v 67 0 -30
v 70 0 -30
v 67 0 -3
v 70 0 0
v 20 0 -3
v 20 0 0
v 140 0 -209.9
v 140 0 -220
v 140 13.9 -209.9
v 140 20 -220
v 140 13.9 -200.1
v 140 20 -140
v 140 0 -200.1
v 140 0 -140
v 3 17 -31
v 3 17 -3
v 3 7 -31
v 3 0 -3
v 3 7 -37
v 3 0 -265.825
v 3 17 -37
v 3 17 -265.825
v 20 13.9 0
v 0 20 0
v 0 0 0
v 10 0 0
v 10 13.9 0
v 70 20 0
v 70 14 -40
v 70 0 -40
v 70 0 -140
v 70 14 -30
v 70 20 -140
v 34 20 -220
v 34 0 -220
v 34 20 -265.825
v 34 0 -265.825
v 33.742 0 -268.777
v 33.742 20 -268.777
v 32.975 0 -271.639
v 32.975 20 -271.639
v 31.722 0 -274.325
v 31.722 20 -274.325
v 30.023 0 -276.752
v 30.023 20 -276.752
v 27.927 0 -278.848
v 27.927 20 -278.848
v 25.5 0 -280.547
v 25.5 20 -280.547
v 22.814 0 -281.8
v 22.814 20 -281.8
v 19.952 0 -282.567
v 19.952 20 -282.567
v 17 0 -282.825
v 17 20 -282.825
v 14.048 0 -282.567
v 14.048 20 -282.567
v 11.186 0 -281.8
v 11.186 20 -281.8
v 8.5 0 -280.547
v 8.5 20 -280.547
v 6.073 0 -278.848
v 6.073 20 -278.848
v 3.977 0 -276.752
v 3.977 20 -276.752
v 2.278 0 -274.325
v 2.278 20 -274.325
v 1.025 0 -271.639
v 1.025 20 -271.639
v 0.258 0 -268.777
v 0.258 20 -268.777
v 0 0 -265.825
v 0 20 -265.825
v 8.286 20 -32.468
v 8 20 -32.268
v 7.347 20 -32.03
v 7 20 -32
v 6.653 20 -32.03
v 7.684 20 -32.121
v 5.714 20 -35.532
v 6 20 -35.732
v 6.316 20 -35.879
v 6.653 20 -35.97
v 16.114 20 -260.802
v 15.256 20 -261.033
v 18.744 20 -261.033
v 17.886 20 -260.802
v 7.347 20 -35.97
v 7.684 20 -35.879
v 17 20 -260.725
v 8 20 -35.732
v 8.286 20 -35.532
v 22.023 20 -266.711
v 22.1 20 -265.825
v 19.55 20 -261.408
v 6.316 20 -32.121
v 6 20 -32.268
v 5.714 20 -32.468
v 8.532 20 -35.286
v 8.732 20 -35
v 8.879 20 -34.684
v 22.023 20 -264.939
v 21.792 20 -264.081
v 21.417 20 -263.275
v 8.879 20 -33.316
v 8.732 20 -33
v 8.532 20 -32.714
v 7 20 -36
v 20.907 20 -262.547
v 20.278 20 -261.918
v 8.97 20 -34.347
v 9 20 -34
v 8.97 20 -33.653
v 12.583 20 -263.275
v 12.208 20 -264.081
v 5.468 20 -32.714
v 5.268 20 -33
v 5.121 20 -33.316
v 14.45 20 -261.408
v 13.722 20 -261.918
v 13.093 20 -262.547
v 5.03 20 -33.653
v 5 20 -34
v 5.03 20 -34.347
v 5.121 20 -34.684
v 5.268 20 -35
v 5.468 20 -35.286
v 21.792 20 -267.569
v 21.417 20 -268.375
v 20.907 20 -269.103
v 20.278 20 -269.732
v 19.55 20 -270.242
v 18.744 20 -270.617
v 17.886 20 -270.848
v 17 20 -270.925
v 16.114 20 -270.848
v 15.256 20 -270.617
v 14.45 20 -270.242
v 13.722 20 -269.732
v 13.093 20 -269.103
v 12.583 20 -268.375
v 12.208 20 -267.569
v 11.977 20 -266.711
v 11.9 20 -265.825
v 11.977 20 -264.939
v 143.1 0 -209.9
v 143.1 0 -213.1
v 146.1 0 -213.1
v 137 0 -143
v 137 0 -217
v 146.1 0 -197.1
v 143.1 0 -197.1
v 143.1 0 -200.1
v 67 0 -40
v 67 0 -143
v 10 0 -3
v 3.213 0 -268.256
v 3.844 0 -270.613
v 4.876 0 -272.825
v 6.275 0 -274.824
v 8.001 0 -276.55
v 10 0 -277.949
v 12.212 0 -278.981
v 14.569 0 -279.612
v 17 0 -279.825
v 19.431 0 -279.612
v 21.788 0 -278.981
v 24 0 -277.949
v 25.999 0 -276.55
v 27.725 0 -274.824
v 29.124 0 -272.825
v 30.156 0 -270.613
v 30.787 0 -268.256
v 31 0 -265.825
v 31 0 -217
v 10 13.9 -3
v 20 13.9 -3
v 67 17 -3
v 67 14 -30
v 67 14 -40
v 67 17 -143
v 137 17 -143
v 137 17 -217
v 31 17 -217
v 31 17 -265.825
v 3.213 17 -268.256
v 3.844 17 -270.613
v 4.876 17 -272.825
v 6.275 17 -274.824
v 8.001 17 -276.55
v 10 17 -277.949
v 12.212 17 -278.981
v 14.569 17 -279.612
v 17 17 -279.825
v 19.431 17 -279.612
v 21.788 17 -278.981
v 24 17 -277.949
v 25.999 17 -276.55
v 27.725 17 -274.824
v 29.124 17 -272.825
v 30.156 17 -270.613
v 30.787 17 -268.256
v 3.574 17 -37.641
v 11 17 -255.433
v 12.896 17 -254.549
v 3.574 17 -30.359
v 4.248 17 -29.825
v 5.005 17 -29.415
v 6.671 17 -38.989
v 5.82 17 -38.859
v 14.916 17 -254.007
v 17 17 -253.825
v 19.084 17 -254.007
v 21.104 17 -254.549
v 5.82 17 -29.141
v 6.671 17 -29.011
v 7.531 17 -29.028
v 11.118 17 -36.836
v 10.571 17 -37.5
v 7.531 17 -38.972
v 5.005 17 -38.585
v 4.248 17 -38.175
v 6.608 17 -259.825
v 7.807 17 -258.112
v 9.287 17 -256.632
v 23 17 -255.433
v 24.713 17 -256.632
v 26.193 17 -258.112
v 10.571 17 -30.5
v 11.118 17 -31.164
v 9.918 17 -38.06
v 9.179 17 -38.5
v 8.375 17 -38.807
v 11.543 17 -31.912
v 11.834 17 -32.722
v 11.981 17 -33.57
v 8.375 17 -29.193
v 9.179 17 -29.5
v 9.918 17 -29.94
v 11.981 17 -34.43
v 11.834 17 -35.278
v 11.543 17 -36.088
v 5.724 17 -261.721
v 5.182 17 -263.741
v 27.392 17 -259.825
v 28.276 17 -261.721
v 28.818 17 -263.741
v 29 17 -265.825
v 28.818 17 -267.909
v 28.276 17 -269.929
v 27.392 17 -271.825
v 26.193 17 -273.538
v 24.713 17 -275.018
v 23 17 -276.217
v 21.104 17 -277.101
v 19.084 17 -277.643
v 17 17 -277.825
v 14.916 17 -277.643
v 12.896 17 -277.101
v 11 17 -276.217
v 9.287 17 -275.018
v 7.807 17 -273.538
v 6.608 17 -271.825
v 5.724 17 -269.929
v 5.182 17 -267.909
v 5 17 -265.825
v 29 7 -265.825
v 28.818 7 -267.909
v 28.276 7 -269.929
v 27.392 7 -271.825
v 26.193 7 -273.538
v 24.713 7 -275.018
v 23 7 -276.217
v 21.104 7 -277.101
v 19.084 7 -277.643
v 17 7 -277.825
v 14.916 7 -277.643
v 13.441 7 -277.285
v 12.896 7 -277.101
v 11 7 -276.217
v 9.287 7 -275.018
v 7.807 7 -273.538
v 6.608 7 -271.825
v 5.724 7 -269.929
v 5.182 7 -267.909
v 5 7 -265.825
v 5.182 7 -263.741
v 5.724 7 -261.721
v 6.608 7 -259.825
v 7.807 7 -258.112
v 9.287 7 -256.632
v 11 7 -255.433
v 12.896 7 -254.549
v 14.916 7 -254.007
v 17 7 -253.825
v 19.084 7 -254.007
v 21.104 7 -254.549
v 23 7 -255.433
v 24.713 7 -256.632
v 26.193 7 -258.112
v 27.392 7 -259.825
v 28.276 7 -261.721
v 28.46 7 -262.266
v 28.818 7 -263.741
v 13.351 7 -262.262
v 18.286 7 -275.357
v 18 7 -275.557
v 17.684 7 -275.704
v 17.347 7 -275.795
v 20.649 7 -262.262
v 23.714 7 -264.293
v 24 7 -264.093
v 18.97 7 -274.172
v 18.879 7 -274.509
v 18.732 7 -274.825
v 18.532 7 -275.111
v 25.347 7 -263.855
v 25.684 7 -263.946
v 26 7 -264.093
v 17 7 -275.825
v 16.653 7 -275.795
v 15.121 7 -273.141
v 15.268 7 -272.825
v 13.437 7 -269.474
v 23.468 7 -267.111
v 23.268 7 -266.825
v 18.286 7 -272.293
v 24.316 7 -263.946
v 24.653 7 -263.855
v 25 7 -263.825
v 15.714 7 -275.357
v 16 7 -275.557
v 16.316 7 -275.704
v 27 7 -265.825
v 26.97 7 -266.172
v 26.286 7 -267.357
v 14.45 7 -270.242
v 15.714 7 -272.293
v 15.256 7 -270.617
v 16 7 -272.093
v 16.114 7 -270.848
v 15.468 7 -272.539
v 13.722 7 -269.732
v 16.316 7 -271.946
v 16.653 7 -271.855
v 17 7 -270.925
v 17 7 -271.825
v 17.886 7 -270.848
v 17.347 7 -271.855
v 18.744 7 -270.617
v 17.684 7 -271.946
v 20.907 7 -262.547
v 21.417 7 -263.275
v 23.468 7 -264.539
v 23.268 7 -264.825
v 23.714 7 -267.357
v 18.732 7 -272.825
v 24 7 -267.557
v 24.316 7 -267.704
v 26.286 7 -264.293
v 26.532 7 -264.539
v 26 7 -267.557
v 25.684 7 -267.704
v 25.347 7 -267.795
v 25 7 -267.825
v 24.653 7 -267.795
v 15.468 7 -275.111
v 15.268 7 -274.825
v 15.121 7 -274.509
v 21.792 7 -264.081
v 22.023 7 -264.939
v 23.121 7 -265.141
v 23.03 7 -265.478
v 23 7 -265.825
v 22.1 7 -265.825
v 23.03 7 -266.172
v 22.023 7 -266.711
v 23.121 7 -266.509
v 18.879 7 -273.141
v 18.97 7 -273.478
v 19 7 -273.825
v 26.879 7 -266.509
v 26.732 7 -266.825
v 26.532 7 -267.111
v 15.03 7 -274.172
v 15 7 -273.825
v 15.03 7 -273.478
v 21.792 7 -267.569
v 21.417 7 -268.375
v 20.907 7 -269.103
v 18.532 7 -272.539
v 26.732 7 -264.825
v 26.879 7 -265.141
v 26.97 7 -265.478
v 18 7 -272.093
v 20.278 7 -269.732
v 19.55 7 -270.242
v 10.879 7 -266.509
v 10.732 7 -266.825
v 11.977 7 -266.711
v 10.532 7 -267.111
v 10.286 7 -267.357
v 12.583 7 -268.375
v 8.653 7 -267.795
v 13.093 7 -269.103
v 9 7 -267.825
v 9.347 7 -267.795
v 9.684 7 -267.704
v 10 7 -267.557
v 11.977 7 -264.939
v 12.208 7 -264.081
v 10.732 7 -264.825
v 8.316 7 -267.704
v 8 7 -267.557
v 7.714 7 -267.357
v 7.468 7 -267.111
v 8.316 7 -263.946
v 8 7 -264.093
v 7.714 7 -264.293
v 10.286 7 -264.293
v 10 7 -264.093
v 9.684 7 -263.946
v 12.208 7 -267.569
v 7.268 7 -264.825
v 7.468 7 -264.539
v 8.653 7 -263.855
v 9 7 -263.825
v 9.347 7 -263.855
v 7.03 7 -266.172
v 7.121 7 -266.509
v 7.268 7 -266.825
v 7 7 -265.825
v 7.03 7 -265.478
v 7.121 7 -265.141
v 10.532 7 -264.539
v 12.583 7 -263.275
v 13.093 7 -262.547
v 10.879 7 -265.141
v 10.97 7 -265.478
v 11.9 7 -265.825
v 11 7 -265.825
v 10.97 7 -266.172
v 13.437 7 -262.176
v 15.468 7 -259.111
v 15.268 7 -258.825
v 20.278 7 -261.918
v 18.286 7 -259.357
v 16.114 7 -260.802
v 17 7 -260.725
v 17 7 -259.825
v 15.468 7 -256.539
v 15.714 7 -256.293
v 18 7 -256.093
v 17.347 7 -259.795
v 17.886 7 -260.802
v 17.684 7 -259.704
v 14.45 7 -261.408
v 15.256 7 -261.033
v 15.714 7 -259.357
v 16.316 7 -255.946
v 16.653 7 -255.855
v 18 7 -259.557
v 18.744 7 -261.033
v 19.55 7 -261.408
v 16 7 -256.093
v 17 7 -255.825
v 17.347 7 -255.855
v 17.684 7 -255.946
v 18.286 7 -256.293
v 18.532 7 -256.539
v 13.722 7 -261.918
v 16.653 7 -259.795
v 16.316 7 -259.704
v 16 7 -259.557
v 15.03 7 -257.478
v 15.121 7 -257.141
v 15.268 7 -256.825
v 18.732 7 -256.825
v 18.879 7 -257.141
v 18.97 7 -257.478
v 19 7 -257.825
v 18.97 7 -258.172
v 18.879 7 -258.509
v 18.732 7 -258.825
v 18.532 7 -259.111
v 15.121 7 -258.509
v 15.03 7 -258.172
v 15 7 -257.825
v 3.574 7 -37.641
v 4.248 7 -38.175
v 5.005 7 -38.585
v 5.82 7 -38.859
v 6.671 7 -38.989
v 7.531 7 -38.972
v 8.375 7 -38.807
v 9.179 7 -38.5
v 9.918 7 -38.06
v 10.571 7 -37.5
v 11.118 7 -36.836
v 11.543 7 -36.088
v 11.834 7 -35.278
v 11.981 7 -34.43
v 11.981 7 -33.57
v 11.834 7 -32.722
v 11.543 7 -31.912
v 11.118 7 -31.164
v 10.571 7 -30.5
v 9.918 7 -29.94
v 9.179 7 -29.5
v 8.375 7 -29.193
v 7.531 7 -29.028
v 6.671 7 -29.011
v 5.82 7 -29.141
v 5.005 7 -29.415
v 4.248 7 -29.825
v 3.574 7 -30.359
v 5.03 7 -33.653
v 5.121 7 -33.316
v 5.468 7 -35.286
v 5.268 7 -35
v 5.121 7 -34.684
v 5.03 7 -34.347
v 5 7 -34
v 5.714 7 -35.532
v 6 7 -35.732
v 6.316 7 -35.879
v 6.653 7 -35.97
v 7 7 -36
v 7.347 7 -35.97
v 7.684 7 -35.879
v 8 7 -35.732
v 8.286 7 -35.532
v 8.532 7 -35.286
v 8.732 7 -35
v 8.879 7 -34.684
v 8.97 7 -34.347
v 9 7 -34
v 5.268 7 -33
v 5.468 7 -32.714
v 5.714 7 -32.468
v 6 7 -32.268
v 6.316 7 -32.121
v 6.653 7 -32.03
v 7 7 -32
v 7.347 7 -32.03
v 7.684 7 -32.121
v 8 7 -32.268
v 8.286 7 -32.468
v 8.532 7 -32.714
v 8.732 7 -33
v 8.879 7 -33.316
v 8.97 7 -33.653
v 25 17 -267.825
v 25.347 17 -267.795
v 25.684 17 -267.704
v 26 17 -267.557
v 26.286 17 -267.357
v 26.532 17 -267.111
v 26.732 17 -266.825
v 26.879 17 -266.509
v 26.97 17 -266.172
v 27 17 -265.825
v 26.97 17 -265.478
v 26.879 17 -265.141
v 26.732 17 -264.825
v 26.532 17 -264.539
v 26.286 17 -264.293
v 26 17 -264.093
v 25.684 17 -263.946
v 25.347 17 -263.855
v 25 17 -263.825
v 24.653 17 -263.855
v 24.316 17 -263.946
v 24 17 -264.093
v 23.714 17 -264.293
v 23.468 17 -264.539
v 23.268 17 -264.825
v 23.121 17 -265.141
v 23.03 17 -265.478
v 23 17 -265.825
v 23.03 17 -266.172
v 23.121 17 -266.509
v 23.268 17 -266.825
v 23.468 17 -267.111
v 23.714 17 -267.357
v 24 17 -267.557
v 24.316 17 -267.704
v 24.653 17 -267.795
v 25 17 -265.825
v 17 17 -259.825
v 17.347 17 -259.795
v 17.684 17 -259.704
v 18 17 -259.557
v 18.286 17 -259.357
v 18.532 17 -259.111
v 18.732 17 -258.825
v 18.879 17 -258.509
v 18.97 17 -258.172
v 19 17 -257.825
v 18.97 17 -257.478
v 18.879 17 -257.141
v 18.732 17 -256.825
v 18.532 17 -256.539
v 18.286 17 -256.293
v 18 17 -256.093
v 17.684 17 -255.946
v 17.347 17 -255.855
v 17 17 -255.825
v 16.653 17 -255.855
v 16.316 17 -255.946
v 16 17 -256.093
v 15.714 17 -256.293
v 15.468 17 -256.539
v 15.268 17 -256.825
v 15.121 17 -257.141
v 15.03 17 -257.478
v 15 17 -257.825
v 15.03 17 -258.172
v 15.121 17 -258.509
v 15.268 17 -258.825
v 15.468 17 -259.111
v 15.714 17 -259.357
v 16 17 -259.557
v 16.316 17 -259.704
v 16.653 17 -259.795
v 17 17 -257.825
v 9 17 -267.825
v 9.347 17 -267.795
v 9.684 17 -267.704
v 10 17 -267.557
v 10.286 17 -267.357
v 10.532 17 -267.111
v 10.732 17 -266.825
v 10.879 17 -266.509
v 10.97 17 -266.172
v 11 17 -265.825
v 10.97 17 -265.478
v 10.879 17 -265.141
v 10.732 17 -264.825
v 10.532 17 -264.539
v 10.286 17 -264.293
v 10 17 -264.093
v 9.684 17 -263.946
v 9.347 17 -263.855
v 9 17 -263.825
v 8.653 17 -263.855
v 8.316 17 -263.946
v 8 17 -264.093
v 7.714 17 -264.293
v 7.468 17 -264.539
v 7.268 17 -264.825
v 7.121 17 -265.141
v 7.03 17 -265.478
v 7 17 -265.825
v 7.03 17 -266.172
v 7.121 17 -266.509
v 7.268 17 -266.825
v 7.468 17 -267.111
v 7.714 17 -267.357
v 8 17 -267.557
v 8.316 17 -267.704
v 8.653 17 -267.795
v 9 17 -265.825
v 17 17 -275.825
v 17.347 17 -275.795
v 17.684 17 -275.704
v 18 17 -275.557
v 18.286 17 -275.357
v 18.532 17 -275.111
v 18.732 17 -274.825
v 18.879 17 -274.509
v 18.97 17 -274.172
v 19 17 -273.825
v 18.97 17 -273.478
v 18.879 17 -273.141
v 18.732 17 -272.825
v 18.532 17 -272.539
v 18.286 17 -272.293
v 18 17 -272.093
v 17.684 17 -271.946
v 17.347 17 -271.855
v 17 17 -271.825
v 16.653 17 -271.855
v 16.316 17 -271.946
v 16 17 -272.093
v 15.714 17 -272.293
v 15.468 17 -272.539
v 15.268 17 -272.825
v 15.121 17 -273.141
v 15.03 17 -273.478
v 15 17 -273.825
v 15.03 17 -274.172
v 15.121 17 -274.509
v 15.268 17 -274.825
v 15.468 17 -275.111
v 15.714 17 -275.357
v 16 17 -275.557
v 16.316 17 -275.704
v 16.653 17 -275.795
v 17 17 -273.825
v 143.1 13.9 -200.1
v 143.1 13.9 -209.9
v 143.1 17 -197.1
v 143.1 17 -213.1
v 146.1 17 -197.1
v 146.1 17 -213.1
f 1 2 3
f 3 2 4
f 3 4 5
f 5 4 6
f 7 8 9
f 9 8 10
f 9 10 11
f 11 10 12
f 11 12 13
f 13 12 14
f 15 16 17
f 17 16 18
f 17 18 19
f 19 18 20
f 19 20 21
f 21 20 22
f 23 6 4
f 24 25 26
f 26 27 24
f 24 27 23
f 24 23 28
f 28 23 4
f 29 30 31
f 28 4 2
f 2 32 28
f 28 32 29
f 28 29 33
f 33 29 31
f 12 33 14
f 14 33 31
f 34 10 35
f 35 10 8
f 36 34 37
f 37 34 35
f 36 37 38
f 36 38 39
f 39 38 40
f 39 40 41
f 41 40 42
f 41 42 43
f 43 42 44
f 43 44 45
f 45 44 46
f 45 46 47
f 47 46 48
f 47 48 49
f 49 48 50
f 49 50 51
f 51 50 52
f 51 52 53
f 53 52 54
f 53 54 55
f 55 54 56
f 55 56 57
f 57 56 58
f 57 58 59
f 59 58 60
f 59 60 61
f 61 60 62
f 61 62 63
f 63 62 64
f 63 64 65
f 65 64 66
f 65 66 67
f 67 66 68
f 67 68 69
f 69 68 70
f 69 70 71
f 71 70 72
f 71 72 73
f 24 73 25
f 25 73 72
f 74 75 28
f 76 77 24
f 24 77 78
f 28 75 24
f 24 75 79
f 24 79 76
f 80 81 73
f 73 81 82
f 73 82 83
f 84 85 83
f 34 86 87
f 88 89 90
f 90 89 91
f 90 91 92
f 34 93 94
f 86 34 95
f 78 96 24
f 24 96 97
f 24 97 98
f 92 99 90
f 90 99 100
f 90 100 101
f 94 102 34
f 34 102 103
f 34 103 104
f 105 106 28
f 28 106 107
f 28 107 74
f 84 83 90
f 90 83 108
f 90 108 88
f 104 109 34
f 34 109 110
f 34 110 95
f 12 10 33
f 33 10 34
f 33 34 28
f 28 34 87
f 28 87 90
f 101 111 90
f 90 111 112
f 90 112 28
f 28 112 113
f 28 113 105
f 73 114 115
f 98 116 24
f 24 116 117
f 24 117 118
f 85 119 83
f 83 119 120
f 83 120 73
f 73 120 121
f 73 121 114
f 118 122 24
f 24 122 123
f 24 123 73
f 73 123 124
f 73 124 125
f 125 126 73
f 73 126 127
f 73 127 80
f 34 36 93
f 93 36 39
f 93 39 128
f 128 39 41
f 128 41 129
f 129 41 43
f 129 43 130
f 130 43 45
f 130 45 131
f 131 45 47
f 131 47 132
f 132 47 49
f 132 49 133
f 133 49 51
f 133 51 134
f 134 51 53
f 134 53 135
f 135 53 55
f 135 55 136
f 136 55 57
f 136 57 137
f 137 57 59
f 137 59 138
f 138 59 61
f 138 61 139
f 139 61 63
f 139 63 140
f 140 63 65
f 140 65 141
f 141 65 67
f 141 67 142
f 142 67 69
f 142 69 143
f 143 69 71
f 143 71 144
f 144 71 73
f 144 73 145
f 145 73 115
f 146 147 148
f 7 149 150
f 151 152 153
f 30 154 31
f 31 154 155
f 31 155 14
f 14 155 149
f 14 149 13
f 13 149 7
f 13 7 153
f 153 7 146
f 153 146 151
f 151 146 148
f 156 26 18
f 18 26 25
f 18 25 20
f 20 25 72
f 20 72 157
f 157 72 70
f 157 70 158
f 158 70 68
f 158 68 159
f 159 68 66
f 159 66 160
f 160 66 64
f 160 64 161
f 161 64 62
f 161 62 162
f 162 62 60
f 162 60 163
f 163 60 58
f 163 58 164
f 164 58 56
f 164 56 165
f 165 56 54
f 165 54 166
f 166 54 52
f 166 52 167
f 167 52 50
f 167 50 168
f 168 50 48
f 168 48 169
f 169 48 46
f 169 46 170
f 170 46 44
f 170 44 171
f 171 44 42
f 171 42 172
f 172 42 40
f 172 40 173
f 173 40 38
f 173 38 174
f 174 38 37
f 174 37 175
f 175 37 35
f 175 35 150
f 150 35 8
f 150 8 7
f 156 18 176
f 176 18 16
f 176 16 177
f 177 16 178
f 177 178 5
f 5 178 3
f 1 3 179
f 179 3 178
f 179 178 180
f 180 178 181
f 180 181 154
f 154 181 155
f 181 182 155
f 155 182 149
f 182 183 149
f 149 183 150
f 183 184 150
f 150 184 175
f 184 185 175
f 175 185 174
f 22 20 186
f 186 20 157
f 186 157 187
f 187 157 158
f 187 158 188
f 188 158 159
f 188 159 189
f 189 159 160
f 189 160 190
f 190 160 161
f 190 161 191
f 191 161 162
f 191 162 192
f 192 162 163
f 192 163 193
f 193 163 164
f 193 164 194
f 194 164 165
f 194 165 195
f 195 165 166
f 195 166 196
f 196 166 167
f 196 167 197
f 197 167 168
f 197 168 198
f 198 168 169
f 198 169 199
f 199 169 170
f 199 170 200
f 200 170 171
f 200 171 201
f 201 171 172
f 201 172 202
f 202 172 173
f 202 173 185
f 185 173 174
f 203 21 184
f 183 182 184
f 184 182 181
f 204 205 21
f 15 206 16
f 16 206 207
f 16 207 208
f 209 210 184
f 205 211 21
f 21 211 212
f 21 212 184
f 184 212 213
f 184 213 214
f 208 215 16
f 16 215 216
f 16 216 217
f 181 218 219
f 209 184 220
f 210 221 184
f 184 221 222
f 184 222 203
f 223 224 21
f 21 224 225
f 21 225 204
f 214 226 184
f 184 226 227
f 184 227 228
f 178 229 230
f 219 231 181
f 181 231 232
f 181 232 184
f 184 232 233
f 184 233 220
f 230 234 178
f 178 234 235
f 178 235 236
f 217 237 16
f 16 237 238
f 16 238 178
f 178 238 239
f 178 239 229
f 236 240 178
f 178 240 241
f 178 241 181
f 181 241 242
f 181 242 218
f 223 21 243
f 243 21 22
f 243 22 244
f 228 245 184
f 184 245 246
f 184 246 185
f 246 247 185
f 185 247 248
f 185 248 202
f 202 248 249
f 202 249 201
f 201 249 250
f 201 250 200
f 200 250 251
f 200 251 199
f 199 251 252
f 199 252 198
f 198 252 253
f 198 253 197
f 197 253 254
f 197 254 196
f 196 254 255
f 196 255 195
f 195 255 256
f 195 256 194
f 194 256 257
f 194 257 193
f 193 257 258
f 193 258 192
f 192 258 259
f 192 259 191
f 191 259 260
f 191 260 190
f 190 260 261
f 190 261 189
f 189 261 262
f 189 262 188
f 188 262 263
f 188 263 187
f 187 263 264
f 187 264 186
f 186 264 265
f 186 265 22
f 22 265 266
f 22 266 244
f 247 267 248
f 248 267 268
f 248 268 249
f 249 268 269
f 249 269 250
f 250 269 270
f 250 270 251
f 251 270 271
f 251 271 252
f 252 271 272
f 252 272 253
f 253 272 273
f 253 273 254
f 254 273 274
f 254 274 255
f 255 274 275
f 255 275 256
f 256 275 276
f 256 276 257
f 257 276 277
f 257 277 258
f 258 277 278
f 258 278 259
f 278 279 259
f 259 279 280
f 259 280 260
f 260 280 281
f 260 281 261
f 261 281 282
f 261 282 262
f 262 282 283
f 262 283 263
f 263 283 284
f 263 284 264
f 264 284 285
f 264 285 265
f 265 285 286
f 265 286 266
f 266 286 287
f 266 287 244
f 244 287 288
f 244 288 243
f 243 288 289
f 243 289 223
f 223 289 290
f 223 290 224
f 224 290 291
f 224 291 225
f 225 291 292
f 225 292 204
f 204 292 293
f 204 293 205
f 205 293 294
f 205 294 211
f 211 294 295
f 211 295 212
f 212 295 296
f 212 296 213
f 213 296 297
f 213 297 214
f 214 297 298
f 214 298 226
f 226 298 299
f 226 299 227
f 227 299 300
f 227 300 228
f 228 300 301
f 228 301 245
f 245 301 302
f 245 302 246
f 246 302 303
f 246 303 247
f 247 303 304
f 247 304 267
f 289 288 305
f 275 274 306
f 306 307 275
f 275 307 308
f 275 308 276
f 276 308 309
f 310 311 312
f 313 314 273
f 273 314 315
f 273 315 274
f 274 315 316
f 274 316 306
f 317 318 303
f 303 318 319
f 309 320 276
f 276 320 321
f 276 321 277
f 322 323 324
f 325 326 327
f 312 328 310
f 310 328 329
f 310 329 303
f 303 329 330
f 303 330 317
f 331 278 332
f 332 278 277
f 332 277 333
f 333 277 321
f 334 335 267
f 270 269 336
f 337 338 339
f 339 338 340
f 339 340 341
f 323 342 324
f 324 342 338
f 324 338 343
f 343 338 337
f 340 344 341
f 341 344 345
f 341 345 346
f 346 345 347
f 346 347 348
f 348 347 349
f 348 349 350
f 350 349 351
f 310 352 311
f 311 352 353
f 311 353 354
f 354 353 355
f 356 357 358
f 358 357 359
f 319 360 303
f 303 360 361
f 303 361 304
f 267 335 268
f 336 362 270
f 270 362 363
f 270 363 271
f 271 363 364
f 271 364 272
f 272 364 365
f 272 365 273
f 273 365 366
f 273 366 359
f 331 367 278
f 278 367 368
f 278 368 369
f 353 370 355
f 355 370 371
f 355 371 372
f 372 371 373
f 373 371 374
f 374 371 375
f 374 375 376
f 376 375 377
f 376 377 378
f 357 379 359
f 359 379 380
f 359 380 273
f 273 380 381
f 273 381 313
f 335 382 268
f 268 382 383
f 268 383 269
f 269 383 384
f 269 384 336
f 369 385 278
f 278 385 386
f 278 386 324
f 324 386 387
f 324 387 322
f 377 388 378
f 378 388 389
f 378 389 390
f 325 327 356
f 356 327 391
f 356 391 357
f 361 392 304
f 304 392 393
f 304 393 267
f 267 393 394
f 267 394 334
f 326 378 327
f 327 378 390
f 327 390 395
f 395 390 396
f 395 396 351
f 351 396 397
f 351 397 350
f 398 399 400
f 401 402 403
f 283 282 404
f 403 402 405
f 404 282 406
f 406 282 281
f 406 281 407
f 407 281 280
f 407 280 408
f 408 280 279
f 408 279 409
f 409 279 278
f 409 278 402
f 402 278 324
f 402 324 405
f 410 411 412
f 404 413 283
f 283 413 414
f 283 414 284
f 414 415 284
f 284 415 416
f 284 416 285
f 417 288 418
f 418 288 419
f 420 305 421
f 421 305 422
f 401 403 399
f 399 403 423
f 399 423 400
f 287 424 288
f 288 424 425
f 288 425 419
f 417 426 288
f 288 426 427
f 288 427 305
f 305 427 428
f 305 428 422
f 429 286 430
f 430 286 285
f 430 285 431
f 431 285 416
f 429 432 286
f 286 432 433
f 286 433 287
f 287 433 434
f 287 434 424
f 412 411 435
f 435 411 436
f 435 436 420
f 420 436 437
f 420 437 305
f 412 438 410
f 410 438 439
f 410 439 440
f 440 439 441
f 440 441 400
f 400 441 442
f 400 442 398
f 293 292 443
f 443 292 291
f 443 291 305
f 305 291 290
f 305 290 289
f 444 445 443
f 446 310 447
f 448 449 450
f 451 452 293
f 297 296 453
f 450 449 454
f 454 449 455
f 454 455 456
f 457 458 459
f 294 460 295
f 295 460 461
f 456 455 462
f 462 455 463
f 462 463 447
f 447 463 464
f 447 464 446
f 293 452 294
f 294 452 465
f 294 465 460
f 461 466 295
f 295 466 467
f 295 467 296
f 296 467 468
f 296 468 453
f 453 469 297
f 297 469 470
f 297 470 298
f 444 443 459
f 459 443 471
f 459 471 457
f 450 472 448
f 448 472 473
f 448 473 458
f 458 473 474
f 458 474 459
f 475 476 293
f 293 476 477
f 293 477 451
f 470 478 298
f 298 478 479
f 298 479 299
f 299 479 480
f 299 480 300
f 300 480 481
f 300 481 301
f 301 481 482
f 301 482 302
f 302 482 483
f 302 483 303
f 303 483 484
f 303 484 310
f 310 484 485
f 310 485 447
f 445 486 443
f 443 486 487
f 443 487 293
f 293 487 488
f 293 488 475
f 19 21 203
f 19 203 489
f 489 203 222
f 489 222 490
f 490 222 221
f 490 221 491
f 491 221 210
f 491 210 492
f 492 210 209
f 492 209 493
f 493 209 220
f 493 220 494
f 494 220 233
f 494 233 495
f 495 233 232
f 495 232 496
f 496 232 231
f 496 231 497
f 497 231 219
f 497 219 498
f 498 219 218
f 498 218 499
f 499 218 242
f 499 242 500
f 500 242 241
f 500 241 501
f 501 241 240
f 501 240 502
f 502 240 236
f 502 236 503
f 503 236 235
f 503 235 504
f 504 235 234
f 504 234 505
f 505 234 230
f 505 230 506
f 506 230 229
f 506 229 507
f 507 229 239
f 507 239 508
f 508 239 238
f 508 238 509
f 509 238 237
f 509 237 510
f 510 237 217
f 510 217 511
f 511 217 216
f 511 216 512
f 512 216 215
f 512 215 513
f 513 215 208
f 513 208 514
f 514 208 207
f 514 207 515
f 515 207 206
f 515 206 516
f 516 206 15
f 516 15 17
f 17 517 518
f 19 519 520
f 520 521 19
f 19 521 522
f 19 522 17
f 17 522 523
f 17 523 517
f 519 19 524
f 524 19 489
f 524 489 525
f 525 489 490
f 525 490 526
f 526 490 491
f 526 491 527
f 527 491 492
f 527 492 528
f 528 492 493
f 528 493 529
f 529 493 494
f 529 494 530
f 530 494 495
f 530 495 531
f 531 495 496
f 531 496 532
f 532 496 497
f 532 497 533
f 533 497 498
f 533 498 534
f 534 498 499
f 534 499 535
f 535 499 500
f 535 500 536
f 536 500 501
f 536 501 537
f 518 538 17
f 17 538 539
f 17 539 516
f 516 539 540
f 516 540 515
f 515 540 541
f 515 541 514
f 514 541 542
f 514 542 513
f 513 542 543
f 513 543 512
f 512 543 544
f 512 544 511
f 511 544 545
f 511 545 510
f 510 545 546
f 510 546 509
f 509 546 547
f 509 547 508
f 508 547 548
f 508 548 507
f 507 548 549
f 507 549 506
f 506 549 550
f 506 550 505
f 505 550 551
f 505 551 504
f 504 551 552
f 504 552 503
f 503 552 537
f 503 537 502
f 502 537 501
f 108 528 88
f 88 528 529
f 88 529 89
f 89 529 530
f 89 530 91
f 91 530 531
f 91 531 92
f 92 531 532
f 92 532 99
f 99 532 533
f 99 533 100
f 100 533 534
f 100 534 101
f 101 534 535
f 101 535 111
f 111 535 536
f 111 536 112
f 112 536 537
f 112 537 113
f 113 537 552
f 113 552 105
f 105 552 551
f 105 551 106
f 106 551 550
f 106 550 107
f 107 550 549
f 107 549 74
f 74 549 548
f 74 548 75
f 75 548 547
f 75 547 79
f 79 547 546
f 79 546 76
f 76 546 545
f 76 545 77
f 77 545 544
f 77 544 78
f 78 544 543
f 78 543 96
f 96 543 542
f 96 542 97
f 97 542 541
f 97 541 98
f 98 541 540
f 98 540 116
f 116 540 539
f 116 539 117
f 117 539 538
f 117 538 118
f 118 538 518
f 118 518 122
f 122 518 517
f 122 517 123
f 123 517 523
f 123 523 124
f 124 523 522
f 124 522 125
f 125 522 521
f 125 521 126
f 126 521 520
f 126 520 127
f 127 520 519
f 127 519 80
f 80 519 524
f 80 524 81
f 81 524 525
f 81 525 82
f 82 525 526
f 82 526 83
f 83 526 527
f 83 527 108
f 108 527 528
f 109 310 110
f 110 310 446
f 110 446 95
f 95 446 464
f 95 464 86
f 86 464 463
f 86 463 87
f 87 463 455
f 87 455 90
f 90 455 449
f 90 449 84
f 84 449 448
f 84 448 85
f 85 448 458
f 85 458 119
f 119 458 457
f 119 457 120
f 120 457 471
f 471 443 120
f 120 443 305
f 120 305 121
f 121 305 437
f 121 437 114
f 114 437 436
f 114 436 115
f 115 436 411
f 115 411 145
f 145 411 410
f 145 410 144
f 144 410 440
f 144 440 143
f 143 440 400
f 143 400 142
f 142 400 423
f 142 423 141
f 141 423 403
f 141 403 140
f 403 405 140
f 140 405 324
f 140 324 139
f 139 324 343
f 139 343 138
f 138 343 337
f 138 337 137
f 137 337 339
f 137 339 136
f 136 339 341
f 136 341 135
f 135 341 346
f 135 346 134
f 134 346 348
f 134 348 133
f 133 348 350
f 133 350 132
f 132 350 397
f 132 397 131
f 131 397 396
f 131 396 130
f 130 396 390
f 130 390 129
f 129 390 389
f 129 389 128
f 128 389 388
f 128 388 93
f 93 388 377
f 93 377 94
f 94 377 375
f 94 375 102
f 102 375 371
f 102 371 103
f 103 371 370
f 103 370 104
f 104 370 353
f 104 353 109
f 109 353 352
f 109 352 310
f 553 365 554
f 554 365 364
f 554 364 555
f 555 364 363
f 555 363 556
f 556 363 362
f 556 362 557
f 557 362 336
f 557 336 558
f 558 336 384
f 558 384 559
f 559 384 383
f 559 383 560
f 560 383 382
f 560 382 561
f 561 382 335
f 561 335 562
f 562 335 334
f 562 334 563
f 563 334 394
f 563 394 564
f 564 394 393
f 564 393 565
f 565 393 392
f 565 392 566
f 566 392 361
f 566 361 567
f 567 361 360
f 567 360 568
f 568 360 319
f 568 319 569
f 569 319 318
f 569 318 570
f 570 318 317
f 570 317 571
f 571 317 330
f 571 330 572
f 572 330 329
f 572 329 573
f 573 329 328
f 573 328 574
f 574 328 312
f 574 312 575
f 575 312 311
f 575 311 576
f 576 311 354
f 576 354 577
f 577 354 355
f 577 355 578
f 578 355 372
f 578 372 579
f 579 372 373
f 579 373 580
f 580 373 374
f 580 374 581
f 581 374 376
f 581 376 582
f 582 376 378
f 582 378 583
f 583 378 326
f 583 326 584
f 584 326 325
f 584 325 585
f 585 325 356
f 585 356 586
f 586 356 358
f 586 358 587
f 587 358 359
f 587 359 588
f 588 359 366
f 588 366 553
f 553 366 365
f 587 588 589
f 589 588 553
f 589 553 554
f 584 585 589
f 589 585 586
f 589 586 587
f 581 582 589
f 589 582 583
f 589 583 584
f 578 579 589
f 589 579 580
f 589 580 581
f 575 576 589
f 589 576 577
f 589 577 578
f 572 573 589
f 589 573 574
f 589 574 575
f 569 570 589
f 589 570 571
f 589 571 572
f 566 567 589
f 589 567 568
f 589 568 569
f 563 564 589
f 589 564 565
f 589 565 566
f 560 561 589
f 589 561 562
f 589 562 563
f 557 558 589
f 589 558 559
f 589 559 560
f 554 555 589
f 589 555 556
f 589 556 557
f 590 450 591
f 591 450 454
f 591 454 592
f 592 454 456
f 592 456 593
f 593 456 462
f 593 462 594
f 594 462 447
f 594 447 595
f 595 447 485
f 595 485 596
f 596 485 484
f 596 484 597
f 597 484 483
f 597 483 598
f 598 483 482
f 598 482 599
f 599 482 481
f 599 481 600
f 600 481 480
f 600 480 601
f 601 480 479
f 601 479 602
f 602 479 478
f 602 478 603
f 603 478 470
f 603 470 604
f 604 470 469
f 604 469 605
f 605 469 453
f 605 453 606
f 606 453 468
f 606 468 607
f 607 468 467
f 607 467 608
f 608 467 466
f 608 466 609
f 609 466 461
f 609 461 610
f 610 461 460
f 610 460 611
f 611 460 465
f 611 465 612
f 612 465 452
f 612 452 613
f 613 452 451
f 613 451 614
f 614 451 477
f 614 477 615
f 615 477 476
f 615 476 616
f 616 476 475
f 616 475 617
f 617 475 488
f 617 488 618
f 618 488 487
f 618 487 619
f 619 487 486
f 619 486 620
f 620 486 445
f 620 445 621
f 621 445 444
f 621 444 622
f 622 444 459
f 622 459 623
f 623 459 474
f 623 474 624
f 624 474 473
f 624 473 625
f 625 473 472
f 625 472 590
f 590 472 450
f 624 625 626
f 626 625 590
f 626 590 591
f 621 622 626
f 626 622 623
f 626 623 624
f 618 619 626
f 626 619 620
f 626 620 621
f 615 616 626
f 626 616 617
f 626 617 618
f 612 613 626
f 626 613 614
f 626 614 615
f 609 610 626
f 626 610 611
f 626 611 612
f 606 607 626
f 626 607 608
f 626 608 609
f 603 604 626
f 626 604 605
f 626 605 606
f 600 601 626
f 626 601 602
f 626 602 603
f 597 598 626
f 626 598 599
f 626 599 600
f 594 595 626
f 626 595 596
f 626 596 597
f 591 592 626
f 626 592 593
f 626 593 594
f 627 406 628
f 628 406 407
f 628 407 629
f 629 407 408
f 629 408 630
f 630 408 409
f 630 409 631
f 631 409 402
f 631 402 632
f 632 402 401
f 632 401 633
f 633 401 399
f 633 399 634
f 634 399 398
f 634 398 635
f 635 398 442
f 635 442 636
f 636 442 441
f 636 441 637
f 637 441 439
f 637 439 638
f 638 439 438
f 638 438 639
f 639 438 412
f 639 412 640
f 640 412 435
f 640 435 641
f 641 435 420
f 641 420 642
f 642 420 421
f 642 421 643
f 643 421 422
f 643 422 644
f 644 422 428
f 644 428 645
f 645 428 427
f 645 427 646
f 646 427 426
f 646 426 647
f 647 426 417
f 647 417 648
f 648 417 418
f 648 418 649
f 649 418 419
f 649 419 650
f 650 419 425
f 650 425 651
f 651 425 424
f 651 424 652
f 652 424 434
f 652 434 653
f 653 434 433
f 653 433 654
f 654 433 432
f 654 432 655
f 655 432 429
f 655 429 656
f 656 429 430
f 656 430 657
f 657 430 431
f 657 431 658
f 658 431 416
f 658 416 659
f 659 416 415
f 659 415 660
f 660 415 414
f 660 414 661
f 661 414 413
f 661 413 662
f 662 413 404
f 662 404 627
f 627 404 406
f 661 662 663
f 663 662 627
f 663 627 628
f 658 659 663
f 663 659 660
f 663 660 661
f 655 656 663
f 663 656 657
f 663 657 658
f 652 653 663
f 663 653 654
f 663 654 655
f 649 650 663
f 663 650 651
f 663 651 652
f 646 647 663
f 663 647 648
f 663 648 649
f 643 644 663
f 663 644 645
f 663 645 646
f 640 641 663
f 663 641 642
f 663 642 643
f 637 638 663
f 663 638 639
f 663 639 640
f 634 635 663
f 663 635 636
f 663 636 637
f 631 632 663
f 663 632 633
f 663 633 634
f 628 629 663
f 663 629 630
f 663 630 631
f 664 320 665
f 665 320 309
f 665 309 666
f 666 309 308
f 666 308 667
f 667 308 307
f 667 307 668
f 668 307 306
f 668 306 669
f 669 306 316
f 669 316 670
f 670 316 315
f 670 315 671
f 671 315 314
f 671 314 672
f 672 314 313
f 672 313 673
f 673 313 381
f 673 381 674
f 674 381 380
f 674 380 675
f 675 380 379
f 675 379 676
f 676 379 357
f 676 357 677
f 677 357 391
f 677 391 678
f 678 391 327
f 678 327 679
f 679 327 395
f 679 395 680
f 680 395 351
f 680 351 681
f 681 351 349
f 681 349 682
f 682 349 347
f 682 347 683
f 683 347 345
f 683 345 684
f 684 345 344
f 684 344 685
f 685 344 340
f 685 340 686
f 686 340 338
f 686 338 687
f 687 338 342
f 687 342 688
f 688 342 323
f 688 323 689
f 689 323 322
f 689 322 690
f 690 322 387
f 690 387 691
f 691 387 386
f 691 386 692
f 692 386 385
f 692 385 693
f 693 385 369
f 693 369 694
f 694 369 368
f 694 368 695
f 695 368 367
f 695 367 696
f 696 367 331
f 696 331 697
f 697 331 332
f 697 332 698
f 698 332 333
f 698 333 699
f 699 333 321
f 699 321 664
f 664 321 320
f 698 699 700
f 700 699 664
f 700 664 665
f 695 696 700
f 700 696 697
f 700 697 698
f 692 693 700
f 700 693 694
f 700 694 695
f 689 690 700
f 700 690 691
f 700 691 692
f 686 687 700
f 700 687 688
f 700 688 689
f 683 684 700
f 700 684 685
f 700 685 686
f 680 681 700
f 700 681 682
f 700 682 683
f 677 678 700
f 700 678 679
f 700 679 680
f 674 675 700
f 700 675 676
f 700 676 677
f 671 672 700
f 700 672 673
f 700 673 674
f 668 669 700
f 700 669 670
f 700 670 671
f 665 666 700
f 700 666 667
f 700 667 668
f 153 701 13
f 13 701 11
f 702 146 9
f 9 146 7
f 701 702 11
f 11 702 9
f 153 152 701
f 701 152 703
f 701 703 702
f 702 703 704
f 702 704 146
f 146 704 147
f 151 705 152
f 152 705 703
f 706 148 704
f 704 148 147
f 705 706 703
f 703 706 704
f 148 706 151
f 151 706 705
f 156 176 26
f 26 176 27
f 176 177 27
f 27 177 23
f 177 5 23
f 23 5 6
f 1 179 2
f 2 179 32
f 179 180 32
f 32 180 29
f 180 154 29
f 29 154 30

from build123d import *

# Parameters (mm, degrees)
CORNERBOSS_EXTRUDE1_DEPTH               = 20
SHELL2_T                                = -3
PADSKETCH3_R                            = 12
PADSKETCH3_R_2                          = 5
PADBOSS_EXTRUDE2_DEPTH                  = 10
STEPPERSHAFTHOLESKETCH4_R               = 5.1
STEPPERSHAFTHOLESKETCH4_R_2             = 2
STEPPERSHAFTCUT_EXTRUDE2_DEPTH          = 316.846451025
THREADEDNUTMOUNTHOLESSKETCH5_R          = 2
THREADEDNUTMOUNTHOLESCUT_EXTRUDE4_DEPTH = 10
TRPEGSKETCH1_W                          = 9.8
TRPEGSKETCH1_H                          = 13.9
TRPEGBOSS_EXTRUDE1_DEPTH                = 3.1
TRPEGCAPSKETCH2_W                       = 16
TRPEGCAPSKETCH2_H                       = 17
TRPEGCAPBOSS_EXTRUDE2_DEPTH             = 3
BOTTOMPEGHOLESKETCH3_W                  = 10
BOTTOMPEGHOLESKETCH3_H                  = 13.9
BOTTOMPEGHOLECUT_EXTRUDE1_DEPTH         = 3
BEDCENTERPEGHOLECUTSKETCH1_W            = 10
BEDCENTERPEGHOLECUTSKETCH1_H            = 14
BEDCENTERPEGHOLECUT_EXTRUDE1_DEPTH      = 3


with BuildPart() as part:
    # CornerrSketch1 → CornerBoss-Extrude1 (new body)
    with BuildSketch(Plane(origin=(0, 0, 0), x_dir=(1, 0, 0), z_dir=(0, 1, 0))):
        with BuildLine():
            Line((140, 220), (140, 140))
            Line((140, 140), (70, 140))
            Line((70, 140), (70, 0))
            Line((70, 0), (0, 0))
            Line((0, 0), (0, 265.825))
            ThreePointArc((0, 265.825), (17, 282.825), (34, 265.825))
            Line((34, 265.825), (34, 220))
            Line((34, 220), (140, 220))
        make_face()
    extrude(amount=CORNERBOSS_EXTRUDE1_DEPTH)

    # Shell2
    shell2_openings = [part.faces().sort_by_distance(p)[0] for p in [
        (50.460788317, 0, -139.249856422),
    ]]
    offset(amount=SHELL2_T, openings=shell2_openings, kind=Kind.INTERSECTION)

    # PadSketch3 → PadBoss-Extrude2 (add)
    with BuildSketch(Plane.XZ.offset(-17)):
        with Locations(Location((17, -265.825, 0), (0, 0, 90))):
            Circle(PADSKETCH3_R)
        with Locations((7, -34)):
            Circle(PADSKETCH3_R_2)
    extrude(amount=PADBOSS_EXTRUDE2_DEPTH)

    # StepperShaftHoleSketch4 → StepperShaftCut-Extrude2 (cut, through all)
    with BuildSketch(Plane.XZ.offset(-7)):
        with Locations(Location((17, -265.825, 0), (0, 0, 270))):
            Circle(STEPPERSHAFTHOLESKETCH4_R)
        with Locations(Location((7, -34, 0), (0, 0, 270))):
            Circle(STEPPERSHAFTHOLESKETCH4_R_2)
    extrude(amount=-STEPPERSHAFTCUT_EXTRUDE2_DEPTH, mode=Mode.SUBTRACT)

    # ThreadedNutMountHolesSketch5 → ThreadedNutMountHolesCut-Extrude4 (cut)
    with BuildSketch(Plane(origin=(0, 7, 0), x_dir=(-1, 0, 0), z_dir=(0, -1, 0))):
        with Locations(Location((-17, 273.825, 0), (0, 0, 90))):
            Circle(THREADEDNUTMOUNTHOLESSKETCH5_R)
        with Locations(Location((-9, 265.825, 0), (0, 0, 90))):
            Circle(THREADEDNUTMOUNTHOLESSKETCH5_R)
        with Locations(Location((-17, 257.825, 0), (0, 0, 90))):
            Circle(THREADEDNUTMOUNTHOLESSKETCH5_R)
        with Locations(Location((-25, 265.825, 0), (0, 0, 90))):
            Circle(THREADEDNUTMOUNTHOLESSKETCH5_R)
    extrude(amount=-THREADEDNUTMOUNTHOLESCUT_EXTRUDE4_DEPTH, mode=Mode.SUBTRACT)

    # TRPegSketch1 → TRPegBoss-Extrude1 (add)
    with BuildSketch(Plane(origin=(140, 0, 0), x_dir=(0, 0, -1), z_dir=(1, 0, 0))):
        with Locations((205, 6.95)):
            Rectangle(TRPEGSKETCH1_W, TRPEGSKETCH1_H)
    extrude(amount=TRPEGBOSS_EXTRUDE1_DEPTH)

    # TRPegCapSketch2 → TRPegCapBoss-Extrude2 (add)
    with BuildSketch(Plane(origin=(143.1, 0, 0), x_dir=(0, 0, -1), z_dir=(1, 0, 0))):
        with Locations((205.1, 8.5)):
            Rectangle(TRPEGCAPSKETCH2_W, TRPEGCAPSKETCH2_H)
    extrude(amount=TRPEGCAPBOSS_EXTRUDE2_DEPTH)

    # BottomPegHoleSketch3 → BottomPegHoleCut-Extrude1 (cut)
    with BuildSketch(Plane.XY):
        with Locations((15, 6.95)):
            Rectangle(BOTTOMPEGHOLESKETCH3_W, BOTTOMPEGHOLESKETCH3_H)
    extrude(amount=-BOTTOMPEGHOLECUT_EXTRUDE1_DEPTH, mode=Mode.SUBTRACT)

    # BedCenterPegHoleCutSketch1 → BedCenterPegHoleCut-Extrude1 (cut)
    with BuildSketch(Plane(origin=(70, 0, 0), x_dir=(0, 0, -1), z_dir=(1, 0, 0))):
        with Locations((35, 7)):
            Rectangle(BEDCENTERPEGHOLECUTSKETCH1_W, BEDCENTERPEGHOLECUTSKETCH1_H)
    extrude(amount=-BEDCENTERPEGHOLECUT_EXTRUDE1_DEPTH, mode=Mode.SUBTRACT)


solid = part.part
